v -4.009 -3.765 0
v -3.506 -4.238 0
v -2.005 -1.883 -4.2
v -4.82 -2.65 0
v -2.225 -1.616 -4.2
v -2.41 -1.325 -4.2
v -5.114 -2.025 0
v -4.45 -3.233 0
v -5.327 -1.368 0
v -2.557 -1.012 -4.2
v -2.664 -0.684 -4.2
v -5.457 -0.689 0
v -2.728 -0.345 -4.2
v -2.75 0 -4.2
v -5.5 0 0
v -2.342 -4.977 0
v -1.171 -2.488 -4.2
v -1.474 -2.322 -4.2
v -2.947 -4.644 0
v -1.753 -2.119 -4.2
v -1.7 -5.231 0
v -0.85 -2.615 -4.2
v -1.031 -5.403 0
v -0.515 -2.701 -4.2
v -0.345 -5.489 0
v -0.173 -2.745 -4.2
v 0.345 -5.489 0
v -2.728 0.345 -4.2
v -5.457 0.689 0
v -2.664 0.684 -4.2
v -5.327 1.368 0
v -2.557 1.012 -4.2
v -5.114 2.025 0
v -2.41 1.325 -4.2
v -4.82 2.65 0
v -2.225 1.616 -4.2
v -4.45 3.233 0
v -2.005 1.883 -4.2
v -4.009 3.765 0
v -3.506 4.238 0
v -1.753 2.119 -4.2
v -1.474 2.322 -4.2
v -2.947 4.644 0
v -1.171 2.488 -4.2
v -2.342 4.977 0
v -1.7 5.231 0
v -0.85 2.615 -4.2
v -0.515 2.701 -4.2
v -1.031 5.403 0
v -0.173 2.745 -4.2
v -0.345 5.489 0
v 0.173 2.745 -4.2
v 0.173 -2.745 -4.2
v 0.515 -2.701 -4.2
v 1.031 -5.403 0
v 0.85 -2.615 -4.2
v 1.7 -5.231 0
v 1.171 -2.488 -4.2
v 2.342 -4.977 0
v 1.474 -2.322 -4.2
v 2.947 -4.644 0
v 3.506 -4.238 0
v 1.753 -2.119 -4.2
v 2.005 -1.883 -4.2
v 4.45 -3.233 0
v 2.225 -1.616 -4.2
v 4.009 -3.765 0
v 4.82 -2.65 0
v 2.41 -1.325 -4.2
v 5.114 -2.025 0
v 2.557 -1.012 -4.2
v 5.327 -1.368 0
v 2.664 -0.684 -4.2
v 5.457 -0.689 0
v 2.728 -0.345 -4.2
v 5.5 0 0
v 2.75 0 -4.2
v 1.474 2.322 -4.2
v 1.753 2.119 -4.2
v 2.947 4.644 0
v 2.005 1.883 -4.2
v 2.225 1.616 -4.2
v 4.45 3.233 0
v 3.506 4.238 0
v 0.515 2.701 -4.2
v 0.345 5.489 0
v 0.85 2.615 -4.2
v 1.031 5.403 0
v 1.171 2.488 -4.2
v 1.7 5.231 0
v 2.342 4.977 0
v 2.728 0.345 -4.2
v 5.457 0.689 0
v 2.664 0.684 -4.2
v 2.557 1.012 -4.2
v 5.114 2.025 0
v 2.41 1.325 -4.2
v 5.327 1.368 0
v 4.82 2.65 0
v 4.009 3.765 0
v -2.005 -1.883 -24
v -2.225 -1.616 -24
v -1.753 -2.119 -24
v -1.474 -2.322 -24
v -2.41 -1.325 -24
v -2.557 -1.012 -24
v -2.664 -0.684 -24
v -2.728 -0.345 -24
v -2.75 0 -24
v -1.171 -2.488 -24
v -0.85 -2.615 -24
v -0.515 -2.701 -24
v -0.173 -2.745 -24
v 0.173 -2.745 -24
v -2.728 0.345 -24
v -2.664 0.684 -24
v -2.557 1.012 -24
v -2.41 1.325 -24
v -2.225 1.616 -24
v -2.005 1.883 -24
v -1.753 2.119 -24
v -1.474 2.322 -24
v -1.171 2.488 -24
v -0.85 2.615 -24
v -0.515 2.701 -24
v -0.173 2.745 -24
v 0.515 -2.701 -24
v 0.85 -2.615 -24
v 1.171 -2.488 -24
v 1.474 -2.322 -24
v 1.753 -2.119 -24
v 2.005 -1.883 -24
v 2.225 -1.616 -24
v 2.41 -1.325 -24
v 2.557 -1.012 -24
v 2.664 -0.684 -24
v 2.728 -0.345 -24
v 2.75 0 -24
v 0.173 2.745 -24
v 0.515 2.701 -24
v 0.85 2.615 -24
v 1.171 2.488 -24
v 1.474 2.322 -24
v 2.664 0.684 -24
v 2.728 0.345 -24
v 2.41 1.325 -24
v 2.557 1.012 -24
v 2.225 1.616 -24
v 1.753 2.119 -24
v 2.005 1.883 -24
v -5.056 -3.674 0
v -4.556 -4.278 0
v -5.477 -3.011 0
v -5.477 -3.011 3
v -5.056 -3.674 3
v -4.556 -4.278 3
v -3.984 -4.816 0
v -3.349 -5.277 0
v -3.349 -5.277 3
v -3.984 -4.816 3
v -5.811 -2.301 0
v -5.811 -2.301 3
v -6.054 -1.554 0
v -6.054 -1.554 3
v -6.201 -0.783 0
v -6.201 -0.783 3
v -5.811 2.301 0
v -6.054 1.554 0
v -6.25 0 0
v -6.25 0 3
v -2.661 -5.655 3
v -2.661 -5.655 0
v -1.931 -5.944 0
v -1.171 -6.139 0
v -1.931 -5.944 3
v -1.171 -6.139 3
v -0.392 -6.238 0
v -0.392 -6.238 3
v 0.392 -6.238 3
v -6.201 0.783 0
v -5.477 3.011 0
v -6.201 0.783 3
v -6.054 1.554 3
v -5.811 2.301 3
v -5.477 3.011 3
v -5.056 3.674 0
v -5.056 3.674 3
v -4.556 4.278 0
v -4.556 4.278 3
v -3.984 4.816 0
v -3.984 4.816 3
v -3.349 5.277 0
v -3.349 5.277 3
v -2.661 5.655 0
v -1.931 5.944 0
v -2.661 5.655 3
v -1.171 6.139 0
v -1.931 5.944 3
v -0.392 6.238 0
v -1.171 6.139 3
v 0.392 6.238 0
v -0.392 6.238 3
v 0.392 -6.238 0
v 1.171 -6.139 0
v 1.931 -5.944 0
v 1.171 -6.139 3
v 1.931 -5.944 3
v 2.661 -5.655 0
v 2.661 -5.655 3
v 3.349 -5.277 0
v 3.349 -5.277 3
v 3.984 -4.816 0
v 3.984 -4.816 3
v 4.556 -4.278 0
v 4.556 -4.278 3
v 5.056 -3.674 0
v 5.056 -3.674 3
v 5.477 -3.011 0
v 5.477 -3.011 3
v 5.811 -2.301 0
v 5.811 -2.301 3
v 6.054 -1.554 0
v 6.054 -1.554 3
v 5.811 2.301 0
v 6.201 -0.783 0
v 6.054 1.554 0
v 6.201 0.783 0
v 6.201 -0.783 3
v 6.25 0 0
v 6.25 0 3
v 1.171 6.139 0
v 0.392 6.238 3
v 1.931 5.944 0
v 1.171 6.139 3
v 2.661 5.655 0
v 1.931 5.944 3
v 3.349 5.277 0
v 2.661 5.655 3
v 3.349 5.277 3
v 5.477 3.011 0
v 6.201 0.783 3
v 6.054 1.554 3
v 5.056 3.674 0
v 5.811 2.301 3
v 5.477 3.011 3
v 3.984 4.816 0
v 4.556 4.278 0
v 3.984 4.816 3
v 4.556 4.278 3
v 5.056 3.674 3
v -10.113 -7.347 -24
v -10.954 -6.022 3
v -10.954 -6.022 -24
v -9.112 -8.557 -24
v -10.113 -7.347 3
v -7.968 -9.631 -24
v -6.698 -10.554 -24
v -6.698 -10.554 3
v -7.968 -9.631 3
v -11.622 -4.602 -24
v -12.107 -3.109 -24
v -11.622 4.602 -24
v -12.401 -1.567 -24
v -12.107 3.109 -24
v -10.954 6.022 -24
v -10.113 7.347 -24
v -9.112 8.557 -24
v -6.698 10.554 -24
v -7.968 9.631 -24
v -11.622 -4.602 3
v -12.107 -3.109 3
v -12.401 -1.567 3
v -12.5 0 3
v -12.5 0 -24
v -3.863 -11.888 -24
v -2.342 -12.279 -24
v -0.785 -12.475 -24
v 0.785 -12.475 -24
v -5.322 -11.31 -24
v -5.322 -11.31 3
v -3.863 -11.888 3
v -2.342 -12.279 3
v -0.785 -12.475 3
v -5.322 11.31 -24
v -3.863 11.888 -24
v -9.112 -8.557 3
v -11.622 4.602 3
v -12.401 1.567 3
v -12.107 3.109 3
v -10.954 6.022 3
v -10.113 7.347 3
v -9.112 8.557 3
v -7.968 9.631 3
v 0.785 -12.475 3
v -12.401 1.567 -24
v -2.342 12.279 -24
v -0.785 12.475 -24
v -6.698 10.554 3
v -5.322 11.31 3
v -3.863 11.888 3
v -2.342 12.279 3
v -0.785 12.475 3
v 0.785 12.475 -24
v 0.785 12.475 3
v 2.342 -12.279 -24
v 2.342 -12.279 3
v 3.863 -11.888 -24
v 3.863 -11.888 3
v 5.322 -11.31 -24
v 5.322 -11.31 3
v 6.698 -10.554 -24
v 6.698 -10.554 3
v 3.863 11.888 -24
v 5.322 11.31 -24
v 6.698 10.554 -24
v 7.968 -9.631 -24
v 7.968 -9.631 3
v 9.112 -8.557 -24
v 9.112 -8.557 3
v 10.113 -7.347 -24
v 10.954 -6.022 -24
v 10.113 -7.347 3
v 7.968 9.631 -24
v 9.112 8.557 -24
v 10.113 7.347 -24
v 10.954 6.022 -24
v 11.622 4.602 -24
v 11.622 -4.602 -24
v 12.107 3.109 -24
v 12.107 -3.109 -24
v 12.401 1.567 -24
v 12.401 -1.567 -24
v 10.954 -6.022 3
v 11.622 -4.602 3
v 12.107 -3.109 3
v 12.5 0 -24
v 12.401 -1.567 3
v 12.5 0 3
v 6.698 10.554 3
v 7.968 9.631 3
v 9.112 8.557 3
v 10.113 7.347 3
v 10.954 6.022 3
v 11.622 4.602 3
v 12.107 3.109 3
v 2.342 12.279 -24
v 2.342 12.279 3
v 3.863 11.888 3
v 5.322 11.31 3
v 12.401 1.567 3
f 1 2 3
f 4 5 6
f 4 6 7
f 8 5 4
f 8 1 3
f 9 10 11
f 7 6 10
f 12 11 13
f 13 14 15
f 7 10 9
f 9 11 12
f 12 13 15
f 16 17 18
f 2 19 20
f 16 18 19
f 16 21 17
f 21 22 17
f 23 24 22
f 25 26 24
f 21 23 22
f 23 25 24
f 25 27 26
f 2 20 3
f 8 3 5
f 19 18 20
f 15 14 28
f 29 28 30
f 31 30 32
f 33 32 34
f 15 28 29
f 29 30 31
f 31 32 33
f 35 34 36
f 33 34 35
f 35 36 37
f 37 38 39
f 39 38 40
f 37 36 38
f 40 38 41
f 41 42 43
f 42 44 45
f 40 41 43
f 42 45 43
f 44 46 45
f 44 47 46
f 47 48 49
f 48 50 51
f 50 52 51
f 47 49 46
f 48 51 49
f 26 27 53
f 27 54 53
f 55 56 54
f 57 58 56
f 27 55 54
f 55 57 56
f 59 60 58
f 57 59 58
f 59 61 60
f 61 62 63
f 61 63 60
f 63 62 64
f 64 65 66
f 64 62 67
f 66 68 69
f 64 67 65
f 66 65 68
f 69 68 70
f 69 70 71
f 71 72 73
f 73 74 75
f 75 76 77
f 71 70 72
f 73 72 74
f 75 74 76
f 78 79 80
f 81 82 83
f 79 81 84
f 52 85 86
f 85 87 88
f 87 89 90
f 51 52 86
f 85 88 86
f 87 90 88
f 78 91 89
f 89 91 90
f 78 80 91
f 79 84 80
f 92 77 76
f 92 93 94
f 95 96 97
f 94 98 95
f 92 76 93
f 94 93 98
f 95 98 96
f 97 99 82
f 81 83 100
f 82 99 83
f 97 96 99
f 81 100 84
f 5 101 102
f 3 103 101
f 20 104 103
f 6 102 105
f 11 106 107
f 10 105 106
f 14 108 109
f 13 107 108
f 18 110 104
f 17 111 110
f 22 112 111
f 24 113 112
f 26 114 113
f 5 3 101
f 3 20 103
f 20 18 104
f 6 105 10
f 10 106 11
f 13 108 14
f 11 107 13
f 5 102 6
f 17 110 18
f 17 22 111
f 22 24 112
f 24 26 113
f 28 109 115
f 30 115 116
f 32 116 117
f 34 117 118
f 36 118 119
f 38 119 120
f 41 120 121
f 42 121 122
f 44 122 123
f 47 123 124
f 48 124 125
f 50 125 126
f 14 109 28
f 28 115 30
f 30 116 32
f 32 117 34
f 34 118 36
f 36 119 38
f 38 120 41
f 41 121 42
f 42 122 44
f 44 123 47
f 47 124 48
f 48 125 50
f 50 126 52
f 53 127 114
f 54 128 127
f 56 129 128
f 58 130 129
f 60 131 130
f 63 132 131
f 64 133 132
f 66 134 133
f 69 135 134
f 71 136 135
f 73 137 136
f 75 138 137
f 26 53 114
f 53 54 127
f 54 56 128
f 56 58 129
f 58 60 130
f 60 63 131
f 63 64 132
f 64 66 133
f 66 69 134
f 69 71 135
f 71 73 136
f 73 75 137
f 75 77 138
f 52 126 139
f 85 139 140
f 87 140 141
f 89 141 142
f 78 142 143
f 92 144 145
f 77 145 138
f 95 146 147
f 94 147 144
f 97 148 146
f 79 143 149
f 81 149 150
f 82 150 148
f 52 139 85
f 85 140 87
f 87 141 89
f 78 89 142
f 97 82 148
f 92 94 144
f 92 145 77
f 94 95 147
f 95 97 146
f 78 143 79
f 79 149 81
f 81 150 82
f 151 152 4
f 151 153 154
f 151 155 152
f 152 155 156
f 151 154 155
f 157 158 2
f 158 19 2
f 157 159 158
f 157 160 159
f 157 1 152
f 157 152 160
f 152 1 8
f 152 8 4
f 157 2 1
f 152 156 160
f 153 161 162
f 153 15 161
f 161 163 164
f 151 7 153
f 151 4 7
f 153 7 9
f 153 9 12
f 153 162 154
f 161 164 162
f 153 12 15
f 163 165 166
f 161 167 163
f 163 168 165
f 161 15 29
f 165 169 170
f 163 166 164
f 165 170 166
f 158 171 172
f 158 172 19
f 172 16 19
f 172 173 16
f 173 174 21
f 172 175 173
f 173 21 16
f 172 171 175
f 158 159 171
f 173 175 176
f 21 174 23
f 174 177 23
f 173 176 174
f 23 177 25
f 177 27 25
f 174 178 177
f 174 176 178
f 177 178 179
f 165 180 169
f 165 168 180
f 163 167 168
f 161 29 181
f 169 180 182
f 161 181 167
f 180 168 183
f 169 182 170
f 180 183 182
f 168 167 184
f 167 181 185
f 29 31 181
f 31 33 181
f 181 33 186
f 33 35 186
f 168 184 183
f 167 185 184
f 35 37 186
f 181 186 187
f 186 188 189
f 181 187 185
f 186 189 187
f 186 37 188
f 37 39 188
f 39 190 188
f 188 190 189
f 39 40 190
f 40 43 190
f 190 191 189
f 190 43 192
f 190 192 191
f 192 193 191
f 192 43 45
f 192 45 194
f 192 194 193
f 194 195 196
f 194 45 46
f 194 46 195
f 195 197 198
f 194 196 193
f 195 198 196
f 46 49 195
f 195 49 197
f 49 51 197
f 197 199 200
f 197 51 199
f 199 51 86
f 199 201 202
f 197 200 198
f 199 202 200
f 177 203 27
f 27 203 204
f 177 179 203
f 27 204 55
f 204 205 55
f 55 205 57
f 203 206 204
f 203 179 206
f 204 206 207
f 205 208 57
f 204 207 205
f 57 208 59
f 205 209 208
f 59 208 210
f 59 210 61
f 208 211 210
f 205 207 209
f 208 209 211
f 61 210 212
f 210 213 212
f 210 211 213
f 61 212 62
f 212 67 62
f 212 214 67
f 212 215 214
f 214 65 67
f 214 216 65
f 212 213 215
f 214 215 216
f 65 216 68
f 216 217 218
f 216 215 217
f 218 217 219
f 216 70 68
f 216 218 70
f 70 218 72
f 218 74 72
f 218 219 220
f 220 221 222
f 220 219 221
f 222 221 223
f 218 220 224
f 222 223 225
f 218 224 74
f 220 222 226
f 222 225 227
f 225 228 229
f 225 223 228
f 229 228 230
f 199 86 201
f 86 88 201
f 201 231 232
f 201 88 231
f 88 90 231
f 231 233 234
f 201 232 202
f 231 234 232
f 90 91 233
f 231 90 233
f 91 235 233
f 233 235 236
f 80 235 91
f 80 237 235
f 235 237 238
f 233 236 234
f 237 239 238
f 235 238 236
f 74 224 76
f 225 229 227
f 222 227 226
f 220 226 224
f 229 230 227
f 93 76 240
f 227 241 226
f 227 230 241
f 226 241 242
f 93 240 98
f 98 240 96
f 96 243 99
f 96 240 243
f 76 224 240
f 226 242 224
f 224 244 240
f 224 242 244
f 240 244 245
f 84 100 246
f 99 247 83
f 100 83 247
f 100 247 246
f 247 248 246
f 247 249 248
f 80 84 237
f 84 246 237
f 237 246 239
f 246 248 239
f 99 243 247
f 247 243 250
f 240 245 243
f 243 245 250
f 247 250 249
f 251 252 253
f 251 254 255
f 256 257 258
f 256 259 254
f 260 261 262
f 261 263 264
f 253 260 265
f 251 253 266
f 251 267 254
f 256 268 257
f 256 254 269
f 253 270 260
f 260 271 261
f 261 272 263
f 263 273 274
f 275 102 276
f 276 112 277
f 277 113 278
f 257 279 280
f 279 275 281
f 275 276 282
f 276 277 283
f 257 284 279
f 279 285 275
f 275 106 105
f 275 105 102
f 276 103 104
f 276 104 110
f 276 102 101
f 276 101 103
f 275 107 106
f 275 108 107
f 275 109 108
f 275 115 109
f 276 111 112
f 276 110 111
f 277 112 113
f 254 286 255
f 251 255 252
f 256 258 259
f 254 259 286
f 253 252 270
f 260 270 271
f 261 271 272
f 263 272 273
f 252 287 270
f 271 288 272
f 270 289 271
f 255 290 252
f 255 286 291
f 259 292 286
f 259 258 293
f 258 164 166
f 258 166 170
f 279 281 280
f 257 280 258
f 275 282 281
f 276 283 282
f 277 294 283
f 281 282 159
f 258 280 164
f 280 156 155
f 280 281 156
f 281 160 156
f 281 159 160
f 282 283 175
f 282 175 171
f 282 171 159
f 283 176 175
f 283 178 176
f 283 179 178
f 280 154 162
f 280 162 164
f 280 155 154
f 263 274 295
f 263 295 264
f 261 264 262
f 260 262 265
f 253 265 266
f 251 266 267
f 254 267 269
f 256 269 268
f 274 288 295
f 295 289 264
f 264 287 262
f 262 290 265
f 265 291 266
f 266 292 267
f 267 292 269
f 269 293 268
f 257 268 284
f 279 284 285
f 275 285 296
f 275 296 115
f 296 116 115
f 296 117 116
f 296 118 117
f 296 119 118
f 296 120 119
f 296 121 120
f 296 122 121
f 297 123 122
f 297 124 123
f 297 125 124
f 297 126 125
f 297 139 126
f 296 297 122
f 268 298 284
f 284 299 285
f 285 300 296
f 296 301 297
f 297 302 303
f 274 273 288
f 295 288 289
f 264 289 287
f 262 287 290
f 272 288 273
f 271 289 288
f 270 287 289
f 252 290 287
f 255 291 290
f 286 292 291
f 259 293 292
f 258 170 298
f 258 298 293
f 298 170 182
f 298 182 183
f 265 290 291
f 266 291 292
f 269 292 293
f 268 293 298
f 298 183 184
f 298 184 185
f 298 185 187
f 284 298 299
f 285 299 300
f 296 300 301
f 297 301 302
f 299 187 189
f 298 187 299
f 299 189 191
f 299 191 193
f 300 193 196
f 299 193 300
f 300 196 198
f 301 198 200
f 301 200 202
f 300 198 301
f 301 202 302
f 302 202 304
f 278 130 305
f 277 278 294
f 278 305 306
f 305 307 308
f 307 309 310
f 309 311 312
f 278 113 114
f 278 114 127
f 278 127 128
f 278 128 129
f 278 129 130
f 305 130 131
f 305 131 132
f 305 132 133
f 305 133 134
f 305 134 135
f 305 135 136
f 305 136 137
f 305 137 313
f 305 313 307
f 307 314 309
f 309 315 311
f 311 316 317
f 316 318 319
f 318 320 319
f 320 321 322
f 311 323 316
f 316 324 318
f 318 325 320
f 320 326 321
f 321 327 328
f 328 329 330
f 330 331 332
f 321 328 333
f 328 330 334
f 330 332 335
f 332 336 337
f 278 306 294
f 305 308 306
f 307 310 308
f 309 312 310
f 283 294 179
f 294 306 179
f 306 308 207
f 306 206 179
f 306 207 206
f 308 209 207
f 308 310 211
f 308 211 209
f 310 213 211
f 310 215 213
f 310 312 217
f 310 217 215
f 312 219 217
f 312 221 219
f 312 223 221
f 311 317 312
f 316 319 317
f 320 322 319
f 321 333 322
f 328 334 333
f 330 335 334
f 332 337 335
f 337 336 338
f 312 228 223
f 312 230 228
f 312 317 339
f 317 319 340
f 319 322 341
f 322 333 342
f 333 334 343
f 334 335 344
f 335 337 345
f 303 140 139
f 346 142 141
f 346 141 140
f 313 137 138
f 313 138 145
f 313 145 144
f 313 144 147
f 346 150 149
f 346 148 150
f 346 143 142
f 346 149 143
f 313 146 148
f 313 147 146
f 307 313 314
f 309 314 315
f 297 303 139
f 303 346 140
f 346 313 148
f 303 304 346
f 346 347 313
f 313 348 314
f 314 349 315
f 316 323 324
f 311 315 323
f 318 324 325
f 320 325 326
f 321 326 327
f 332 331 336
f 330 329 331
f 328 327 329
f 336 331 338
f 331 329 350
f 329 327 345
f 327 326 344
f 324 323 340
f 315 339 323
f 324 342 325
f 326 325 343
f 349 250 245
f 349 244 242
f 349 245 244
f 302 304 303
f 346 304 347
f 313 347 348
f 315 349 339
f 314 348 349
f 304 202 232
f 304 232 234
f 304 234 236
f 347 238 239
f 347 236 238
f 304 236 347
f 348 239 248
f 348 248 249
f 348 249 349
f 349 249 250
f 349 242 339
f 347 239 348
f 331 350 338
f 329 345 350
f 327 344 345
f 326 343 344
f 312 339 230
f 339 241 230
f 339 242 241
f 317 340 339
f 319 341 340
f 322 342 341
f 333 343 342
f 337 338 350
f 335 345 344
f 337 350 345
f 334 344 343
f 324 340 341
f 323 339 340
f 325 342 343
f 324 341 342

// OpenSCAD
$fn = 50;


difference() {
	union() {
		translate(v = [0, 0, -24.0000000000]) {
			cylinder(h = 27, r = 12.5000000000);
		}
	}
	union() {
		translate(v = [0, 0, 0]) {
			rotate(a = [0, 0, 0]) {
				difference() {
					union() {
						translate(v = [0, 0, -27.0000000000]) {
							cylinder(h = 27, r = 2.2500000000);
						}
						translate(v = [0, 0, -4.2000000000]) {
							cylinder(h = 4.2000000000, r1 = 2.7500000000, r2 = 5.5000000000);
						}
						translate(v = [0, 0, -27.0000000000]) {
							cylinder(h = 27, r = 2.7500000000);
						}
						translate(v = [0, 0, -27.0000000000]) {
							cylinder(h = 27, r = 2.2500000000);
						}
					}
					union();
				}
			}
		}
		#cylinder(h = 3, r = 6.2500000000);
	}
}
